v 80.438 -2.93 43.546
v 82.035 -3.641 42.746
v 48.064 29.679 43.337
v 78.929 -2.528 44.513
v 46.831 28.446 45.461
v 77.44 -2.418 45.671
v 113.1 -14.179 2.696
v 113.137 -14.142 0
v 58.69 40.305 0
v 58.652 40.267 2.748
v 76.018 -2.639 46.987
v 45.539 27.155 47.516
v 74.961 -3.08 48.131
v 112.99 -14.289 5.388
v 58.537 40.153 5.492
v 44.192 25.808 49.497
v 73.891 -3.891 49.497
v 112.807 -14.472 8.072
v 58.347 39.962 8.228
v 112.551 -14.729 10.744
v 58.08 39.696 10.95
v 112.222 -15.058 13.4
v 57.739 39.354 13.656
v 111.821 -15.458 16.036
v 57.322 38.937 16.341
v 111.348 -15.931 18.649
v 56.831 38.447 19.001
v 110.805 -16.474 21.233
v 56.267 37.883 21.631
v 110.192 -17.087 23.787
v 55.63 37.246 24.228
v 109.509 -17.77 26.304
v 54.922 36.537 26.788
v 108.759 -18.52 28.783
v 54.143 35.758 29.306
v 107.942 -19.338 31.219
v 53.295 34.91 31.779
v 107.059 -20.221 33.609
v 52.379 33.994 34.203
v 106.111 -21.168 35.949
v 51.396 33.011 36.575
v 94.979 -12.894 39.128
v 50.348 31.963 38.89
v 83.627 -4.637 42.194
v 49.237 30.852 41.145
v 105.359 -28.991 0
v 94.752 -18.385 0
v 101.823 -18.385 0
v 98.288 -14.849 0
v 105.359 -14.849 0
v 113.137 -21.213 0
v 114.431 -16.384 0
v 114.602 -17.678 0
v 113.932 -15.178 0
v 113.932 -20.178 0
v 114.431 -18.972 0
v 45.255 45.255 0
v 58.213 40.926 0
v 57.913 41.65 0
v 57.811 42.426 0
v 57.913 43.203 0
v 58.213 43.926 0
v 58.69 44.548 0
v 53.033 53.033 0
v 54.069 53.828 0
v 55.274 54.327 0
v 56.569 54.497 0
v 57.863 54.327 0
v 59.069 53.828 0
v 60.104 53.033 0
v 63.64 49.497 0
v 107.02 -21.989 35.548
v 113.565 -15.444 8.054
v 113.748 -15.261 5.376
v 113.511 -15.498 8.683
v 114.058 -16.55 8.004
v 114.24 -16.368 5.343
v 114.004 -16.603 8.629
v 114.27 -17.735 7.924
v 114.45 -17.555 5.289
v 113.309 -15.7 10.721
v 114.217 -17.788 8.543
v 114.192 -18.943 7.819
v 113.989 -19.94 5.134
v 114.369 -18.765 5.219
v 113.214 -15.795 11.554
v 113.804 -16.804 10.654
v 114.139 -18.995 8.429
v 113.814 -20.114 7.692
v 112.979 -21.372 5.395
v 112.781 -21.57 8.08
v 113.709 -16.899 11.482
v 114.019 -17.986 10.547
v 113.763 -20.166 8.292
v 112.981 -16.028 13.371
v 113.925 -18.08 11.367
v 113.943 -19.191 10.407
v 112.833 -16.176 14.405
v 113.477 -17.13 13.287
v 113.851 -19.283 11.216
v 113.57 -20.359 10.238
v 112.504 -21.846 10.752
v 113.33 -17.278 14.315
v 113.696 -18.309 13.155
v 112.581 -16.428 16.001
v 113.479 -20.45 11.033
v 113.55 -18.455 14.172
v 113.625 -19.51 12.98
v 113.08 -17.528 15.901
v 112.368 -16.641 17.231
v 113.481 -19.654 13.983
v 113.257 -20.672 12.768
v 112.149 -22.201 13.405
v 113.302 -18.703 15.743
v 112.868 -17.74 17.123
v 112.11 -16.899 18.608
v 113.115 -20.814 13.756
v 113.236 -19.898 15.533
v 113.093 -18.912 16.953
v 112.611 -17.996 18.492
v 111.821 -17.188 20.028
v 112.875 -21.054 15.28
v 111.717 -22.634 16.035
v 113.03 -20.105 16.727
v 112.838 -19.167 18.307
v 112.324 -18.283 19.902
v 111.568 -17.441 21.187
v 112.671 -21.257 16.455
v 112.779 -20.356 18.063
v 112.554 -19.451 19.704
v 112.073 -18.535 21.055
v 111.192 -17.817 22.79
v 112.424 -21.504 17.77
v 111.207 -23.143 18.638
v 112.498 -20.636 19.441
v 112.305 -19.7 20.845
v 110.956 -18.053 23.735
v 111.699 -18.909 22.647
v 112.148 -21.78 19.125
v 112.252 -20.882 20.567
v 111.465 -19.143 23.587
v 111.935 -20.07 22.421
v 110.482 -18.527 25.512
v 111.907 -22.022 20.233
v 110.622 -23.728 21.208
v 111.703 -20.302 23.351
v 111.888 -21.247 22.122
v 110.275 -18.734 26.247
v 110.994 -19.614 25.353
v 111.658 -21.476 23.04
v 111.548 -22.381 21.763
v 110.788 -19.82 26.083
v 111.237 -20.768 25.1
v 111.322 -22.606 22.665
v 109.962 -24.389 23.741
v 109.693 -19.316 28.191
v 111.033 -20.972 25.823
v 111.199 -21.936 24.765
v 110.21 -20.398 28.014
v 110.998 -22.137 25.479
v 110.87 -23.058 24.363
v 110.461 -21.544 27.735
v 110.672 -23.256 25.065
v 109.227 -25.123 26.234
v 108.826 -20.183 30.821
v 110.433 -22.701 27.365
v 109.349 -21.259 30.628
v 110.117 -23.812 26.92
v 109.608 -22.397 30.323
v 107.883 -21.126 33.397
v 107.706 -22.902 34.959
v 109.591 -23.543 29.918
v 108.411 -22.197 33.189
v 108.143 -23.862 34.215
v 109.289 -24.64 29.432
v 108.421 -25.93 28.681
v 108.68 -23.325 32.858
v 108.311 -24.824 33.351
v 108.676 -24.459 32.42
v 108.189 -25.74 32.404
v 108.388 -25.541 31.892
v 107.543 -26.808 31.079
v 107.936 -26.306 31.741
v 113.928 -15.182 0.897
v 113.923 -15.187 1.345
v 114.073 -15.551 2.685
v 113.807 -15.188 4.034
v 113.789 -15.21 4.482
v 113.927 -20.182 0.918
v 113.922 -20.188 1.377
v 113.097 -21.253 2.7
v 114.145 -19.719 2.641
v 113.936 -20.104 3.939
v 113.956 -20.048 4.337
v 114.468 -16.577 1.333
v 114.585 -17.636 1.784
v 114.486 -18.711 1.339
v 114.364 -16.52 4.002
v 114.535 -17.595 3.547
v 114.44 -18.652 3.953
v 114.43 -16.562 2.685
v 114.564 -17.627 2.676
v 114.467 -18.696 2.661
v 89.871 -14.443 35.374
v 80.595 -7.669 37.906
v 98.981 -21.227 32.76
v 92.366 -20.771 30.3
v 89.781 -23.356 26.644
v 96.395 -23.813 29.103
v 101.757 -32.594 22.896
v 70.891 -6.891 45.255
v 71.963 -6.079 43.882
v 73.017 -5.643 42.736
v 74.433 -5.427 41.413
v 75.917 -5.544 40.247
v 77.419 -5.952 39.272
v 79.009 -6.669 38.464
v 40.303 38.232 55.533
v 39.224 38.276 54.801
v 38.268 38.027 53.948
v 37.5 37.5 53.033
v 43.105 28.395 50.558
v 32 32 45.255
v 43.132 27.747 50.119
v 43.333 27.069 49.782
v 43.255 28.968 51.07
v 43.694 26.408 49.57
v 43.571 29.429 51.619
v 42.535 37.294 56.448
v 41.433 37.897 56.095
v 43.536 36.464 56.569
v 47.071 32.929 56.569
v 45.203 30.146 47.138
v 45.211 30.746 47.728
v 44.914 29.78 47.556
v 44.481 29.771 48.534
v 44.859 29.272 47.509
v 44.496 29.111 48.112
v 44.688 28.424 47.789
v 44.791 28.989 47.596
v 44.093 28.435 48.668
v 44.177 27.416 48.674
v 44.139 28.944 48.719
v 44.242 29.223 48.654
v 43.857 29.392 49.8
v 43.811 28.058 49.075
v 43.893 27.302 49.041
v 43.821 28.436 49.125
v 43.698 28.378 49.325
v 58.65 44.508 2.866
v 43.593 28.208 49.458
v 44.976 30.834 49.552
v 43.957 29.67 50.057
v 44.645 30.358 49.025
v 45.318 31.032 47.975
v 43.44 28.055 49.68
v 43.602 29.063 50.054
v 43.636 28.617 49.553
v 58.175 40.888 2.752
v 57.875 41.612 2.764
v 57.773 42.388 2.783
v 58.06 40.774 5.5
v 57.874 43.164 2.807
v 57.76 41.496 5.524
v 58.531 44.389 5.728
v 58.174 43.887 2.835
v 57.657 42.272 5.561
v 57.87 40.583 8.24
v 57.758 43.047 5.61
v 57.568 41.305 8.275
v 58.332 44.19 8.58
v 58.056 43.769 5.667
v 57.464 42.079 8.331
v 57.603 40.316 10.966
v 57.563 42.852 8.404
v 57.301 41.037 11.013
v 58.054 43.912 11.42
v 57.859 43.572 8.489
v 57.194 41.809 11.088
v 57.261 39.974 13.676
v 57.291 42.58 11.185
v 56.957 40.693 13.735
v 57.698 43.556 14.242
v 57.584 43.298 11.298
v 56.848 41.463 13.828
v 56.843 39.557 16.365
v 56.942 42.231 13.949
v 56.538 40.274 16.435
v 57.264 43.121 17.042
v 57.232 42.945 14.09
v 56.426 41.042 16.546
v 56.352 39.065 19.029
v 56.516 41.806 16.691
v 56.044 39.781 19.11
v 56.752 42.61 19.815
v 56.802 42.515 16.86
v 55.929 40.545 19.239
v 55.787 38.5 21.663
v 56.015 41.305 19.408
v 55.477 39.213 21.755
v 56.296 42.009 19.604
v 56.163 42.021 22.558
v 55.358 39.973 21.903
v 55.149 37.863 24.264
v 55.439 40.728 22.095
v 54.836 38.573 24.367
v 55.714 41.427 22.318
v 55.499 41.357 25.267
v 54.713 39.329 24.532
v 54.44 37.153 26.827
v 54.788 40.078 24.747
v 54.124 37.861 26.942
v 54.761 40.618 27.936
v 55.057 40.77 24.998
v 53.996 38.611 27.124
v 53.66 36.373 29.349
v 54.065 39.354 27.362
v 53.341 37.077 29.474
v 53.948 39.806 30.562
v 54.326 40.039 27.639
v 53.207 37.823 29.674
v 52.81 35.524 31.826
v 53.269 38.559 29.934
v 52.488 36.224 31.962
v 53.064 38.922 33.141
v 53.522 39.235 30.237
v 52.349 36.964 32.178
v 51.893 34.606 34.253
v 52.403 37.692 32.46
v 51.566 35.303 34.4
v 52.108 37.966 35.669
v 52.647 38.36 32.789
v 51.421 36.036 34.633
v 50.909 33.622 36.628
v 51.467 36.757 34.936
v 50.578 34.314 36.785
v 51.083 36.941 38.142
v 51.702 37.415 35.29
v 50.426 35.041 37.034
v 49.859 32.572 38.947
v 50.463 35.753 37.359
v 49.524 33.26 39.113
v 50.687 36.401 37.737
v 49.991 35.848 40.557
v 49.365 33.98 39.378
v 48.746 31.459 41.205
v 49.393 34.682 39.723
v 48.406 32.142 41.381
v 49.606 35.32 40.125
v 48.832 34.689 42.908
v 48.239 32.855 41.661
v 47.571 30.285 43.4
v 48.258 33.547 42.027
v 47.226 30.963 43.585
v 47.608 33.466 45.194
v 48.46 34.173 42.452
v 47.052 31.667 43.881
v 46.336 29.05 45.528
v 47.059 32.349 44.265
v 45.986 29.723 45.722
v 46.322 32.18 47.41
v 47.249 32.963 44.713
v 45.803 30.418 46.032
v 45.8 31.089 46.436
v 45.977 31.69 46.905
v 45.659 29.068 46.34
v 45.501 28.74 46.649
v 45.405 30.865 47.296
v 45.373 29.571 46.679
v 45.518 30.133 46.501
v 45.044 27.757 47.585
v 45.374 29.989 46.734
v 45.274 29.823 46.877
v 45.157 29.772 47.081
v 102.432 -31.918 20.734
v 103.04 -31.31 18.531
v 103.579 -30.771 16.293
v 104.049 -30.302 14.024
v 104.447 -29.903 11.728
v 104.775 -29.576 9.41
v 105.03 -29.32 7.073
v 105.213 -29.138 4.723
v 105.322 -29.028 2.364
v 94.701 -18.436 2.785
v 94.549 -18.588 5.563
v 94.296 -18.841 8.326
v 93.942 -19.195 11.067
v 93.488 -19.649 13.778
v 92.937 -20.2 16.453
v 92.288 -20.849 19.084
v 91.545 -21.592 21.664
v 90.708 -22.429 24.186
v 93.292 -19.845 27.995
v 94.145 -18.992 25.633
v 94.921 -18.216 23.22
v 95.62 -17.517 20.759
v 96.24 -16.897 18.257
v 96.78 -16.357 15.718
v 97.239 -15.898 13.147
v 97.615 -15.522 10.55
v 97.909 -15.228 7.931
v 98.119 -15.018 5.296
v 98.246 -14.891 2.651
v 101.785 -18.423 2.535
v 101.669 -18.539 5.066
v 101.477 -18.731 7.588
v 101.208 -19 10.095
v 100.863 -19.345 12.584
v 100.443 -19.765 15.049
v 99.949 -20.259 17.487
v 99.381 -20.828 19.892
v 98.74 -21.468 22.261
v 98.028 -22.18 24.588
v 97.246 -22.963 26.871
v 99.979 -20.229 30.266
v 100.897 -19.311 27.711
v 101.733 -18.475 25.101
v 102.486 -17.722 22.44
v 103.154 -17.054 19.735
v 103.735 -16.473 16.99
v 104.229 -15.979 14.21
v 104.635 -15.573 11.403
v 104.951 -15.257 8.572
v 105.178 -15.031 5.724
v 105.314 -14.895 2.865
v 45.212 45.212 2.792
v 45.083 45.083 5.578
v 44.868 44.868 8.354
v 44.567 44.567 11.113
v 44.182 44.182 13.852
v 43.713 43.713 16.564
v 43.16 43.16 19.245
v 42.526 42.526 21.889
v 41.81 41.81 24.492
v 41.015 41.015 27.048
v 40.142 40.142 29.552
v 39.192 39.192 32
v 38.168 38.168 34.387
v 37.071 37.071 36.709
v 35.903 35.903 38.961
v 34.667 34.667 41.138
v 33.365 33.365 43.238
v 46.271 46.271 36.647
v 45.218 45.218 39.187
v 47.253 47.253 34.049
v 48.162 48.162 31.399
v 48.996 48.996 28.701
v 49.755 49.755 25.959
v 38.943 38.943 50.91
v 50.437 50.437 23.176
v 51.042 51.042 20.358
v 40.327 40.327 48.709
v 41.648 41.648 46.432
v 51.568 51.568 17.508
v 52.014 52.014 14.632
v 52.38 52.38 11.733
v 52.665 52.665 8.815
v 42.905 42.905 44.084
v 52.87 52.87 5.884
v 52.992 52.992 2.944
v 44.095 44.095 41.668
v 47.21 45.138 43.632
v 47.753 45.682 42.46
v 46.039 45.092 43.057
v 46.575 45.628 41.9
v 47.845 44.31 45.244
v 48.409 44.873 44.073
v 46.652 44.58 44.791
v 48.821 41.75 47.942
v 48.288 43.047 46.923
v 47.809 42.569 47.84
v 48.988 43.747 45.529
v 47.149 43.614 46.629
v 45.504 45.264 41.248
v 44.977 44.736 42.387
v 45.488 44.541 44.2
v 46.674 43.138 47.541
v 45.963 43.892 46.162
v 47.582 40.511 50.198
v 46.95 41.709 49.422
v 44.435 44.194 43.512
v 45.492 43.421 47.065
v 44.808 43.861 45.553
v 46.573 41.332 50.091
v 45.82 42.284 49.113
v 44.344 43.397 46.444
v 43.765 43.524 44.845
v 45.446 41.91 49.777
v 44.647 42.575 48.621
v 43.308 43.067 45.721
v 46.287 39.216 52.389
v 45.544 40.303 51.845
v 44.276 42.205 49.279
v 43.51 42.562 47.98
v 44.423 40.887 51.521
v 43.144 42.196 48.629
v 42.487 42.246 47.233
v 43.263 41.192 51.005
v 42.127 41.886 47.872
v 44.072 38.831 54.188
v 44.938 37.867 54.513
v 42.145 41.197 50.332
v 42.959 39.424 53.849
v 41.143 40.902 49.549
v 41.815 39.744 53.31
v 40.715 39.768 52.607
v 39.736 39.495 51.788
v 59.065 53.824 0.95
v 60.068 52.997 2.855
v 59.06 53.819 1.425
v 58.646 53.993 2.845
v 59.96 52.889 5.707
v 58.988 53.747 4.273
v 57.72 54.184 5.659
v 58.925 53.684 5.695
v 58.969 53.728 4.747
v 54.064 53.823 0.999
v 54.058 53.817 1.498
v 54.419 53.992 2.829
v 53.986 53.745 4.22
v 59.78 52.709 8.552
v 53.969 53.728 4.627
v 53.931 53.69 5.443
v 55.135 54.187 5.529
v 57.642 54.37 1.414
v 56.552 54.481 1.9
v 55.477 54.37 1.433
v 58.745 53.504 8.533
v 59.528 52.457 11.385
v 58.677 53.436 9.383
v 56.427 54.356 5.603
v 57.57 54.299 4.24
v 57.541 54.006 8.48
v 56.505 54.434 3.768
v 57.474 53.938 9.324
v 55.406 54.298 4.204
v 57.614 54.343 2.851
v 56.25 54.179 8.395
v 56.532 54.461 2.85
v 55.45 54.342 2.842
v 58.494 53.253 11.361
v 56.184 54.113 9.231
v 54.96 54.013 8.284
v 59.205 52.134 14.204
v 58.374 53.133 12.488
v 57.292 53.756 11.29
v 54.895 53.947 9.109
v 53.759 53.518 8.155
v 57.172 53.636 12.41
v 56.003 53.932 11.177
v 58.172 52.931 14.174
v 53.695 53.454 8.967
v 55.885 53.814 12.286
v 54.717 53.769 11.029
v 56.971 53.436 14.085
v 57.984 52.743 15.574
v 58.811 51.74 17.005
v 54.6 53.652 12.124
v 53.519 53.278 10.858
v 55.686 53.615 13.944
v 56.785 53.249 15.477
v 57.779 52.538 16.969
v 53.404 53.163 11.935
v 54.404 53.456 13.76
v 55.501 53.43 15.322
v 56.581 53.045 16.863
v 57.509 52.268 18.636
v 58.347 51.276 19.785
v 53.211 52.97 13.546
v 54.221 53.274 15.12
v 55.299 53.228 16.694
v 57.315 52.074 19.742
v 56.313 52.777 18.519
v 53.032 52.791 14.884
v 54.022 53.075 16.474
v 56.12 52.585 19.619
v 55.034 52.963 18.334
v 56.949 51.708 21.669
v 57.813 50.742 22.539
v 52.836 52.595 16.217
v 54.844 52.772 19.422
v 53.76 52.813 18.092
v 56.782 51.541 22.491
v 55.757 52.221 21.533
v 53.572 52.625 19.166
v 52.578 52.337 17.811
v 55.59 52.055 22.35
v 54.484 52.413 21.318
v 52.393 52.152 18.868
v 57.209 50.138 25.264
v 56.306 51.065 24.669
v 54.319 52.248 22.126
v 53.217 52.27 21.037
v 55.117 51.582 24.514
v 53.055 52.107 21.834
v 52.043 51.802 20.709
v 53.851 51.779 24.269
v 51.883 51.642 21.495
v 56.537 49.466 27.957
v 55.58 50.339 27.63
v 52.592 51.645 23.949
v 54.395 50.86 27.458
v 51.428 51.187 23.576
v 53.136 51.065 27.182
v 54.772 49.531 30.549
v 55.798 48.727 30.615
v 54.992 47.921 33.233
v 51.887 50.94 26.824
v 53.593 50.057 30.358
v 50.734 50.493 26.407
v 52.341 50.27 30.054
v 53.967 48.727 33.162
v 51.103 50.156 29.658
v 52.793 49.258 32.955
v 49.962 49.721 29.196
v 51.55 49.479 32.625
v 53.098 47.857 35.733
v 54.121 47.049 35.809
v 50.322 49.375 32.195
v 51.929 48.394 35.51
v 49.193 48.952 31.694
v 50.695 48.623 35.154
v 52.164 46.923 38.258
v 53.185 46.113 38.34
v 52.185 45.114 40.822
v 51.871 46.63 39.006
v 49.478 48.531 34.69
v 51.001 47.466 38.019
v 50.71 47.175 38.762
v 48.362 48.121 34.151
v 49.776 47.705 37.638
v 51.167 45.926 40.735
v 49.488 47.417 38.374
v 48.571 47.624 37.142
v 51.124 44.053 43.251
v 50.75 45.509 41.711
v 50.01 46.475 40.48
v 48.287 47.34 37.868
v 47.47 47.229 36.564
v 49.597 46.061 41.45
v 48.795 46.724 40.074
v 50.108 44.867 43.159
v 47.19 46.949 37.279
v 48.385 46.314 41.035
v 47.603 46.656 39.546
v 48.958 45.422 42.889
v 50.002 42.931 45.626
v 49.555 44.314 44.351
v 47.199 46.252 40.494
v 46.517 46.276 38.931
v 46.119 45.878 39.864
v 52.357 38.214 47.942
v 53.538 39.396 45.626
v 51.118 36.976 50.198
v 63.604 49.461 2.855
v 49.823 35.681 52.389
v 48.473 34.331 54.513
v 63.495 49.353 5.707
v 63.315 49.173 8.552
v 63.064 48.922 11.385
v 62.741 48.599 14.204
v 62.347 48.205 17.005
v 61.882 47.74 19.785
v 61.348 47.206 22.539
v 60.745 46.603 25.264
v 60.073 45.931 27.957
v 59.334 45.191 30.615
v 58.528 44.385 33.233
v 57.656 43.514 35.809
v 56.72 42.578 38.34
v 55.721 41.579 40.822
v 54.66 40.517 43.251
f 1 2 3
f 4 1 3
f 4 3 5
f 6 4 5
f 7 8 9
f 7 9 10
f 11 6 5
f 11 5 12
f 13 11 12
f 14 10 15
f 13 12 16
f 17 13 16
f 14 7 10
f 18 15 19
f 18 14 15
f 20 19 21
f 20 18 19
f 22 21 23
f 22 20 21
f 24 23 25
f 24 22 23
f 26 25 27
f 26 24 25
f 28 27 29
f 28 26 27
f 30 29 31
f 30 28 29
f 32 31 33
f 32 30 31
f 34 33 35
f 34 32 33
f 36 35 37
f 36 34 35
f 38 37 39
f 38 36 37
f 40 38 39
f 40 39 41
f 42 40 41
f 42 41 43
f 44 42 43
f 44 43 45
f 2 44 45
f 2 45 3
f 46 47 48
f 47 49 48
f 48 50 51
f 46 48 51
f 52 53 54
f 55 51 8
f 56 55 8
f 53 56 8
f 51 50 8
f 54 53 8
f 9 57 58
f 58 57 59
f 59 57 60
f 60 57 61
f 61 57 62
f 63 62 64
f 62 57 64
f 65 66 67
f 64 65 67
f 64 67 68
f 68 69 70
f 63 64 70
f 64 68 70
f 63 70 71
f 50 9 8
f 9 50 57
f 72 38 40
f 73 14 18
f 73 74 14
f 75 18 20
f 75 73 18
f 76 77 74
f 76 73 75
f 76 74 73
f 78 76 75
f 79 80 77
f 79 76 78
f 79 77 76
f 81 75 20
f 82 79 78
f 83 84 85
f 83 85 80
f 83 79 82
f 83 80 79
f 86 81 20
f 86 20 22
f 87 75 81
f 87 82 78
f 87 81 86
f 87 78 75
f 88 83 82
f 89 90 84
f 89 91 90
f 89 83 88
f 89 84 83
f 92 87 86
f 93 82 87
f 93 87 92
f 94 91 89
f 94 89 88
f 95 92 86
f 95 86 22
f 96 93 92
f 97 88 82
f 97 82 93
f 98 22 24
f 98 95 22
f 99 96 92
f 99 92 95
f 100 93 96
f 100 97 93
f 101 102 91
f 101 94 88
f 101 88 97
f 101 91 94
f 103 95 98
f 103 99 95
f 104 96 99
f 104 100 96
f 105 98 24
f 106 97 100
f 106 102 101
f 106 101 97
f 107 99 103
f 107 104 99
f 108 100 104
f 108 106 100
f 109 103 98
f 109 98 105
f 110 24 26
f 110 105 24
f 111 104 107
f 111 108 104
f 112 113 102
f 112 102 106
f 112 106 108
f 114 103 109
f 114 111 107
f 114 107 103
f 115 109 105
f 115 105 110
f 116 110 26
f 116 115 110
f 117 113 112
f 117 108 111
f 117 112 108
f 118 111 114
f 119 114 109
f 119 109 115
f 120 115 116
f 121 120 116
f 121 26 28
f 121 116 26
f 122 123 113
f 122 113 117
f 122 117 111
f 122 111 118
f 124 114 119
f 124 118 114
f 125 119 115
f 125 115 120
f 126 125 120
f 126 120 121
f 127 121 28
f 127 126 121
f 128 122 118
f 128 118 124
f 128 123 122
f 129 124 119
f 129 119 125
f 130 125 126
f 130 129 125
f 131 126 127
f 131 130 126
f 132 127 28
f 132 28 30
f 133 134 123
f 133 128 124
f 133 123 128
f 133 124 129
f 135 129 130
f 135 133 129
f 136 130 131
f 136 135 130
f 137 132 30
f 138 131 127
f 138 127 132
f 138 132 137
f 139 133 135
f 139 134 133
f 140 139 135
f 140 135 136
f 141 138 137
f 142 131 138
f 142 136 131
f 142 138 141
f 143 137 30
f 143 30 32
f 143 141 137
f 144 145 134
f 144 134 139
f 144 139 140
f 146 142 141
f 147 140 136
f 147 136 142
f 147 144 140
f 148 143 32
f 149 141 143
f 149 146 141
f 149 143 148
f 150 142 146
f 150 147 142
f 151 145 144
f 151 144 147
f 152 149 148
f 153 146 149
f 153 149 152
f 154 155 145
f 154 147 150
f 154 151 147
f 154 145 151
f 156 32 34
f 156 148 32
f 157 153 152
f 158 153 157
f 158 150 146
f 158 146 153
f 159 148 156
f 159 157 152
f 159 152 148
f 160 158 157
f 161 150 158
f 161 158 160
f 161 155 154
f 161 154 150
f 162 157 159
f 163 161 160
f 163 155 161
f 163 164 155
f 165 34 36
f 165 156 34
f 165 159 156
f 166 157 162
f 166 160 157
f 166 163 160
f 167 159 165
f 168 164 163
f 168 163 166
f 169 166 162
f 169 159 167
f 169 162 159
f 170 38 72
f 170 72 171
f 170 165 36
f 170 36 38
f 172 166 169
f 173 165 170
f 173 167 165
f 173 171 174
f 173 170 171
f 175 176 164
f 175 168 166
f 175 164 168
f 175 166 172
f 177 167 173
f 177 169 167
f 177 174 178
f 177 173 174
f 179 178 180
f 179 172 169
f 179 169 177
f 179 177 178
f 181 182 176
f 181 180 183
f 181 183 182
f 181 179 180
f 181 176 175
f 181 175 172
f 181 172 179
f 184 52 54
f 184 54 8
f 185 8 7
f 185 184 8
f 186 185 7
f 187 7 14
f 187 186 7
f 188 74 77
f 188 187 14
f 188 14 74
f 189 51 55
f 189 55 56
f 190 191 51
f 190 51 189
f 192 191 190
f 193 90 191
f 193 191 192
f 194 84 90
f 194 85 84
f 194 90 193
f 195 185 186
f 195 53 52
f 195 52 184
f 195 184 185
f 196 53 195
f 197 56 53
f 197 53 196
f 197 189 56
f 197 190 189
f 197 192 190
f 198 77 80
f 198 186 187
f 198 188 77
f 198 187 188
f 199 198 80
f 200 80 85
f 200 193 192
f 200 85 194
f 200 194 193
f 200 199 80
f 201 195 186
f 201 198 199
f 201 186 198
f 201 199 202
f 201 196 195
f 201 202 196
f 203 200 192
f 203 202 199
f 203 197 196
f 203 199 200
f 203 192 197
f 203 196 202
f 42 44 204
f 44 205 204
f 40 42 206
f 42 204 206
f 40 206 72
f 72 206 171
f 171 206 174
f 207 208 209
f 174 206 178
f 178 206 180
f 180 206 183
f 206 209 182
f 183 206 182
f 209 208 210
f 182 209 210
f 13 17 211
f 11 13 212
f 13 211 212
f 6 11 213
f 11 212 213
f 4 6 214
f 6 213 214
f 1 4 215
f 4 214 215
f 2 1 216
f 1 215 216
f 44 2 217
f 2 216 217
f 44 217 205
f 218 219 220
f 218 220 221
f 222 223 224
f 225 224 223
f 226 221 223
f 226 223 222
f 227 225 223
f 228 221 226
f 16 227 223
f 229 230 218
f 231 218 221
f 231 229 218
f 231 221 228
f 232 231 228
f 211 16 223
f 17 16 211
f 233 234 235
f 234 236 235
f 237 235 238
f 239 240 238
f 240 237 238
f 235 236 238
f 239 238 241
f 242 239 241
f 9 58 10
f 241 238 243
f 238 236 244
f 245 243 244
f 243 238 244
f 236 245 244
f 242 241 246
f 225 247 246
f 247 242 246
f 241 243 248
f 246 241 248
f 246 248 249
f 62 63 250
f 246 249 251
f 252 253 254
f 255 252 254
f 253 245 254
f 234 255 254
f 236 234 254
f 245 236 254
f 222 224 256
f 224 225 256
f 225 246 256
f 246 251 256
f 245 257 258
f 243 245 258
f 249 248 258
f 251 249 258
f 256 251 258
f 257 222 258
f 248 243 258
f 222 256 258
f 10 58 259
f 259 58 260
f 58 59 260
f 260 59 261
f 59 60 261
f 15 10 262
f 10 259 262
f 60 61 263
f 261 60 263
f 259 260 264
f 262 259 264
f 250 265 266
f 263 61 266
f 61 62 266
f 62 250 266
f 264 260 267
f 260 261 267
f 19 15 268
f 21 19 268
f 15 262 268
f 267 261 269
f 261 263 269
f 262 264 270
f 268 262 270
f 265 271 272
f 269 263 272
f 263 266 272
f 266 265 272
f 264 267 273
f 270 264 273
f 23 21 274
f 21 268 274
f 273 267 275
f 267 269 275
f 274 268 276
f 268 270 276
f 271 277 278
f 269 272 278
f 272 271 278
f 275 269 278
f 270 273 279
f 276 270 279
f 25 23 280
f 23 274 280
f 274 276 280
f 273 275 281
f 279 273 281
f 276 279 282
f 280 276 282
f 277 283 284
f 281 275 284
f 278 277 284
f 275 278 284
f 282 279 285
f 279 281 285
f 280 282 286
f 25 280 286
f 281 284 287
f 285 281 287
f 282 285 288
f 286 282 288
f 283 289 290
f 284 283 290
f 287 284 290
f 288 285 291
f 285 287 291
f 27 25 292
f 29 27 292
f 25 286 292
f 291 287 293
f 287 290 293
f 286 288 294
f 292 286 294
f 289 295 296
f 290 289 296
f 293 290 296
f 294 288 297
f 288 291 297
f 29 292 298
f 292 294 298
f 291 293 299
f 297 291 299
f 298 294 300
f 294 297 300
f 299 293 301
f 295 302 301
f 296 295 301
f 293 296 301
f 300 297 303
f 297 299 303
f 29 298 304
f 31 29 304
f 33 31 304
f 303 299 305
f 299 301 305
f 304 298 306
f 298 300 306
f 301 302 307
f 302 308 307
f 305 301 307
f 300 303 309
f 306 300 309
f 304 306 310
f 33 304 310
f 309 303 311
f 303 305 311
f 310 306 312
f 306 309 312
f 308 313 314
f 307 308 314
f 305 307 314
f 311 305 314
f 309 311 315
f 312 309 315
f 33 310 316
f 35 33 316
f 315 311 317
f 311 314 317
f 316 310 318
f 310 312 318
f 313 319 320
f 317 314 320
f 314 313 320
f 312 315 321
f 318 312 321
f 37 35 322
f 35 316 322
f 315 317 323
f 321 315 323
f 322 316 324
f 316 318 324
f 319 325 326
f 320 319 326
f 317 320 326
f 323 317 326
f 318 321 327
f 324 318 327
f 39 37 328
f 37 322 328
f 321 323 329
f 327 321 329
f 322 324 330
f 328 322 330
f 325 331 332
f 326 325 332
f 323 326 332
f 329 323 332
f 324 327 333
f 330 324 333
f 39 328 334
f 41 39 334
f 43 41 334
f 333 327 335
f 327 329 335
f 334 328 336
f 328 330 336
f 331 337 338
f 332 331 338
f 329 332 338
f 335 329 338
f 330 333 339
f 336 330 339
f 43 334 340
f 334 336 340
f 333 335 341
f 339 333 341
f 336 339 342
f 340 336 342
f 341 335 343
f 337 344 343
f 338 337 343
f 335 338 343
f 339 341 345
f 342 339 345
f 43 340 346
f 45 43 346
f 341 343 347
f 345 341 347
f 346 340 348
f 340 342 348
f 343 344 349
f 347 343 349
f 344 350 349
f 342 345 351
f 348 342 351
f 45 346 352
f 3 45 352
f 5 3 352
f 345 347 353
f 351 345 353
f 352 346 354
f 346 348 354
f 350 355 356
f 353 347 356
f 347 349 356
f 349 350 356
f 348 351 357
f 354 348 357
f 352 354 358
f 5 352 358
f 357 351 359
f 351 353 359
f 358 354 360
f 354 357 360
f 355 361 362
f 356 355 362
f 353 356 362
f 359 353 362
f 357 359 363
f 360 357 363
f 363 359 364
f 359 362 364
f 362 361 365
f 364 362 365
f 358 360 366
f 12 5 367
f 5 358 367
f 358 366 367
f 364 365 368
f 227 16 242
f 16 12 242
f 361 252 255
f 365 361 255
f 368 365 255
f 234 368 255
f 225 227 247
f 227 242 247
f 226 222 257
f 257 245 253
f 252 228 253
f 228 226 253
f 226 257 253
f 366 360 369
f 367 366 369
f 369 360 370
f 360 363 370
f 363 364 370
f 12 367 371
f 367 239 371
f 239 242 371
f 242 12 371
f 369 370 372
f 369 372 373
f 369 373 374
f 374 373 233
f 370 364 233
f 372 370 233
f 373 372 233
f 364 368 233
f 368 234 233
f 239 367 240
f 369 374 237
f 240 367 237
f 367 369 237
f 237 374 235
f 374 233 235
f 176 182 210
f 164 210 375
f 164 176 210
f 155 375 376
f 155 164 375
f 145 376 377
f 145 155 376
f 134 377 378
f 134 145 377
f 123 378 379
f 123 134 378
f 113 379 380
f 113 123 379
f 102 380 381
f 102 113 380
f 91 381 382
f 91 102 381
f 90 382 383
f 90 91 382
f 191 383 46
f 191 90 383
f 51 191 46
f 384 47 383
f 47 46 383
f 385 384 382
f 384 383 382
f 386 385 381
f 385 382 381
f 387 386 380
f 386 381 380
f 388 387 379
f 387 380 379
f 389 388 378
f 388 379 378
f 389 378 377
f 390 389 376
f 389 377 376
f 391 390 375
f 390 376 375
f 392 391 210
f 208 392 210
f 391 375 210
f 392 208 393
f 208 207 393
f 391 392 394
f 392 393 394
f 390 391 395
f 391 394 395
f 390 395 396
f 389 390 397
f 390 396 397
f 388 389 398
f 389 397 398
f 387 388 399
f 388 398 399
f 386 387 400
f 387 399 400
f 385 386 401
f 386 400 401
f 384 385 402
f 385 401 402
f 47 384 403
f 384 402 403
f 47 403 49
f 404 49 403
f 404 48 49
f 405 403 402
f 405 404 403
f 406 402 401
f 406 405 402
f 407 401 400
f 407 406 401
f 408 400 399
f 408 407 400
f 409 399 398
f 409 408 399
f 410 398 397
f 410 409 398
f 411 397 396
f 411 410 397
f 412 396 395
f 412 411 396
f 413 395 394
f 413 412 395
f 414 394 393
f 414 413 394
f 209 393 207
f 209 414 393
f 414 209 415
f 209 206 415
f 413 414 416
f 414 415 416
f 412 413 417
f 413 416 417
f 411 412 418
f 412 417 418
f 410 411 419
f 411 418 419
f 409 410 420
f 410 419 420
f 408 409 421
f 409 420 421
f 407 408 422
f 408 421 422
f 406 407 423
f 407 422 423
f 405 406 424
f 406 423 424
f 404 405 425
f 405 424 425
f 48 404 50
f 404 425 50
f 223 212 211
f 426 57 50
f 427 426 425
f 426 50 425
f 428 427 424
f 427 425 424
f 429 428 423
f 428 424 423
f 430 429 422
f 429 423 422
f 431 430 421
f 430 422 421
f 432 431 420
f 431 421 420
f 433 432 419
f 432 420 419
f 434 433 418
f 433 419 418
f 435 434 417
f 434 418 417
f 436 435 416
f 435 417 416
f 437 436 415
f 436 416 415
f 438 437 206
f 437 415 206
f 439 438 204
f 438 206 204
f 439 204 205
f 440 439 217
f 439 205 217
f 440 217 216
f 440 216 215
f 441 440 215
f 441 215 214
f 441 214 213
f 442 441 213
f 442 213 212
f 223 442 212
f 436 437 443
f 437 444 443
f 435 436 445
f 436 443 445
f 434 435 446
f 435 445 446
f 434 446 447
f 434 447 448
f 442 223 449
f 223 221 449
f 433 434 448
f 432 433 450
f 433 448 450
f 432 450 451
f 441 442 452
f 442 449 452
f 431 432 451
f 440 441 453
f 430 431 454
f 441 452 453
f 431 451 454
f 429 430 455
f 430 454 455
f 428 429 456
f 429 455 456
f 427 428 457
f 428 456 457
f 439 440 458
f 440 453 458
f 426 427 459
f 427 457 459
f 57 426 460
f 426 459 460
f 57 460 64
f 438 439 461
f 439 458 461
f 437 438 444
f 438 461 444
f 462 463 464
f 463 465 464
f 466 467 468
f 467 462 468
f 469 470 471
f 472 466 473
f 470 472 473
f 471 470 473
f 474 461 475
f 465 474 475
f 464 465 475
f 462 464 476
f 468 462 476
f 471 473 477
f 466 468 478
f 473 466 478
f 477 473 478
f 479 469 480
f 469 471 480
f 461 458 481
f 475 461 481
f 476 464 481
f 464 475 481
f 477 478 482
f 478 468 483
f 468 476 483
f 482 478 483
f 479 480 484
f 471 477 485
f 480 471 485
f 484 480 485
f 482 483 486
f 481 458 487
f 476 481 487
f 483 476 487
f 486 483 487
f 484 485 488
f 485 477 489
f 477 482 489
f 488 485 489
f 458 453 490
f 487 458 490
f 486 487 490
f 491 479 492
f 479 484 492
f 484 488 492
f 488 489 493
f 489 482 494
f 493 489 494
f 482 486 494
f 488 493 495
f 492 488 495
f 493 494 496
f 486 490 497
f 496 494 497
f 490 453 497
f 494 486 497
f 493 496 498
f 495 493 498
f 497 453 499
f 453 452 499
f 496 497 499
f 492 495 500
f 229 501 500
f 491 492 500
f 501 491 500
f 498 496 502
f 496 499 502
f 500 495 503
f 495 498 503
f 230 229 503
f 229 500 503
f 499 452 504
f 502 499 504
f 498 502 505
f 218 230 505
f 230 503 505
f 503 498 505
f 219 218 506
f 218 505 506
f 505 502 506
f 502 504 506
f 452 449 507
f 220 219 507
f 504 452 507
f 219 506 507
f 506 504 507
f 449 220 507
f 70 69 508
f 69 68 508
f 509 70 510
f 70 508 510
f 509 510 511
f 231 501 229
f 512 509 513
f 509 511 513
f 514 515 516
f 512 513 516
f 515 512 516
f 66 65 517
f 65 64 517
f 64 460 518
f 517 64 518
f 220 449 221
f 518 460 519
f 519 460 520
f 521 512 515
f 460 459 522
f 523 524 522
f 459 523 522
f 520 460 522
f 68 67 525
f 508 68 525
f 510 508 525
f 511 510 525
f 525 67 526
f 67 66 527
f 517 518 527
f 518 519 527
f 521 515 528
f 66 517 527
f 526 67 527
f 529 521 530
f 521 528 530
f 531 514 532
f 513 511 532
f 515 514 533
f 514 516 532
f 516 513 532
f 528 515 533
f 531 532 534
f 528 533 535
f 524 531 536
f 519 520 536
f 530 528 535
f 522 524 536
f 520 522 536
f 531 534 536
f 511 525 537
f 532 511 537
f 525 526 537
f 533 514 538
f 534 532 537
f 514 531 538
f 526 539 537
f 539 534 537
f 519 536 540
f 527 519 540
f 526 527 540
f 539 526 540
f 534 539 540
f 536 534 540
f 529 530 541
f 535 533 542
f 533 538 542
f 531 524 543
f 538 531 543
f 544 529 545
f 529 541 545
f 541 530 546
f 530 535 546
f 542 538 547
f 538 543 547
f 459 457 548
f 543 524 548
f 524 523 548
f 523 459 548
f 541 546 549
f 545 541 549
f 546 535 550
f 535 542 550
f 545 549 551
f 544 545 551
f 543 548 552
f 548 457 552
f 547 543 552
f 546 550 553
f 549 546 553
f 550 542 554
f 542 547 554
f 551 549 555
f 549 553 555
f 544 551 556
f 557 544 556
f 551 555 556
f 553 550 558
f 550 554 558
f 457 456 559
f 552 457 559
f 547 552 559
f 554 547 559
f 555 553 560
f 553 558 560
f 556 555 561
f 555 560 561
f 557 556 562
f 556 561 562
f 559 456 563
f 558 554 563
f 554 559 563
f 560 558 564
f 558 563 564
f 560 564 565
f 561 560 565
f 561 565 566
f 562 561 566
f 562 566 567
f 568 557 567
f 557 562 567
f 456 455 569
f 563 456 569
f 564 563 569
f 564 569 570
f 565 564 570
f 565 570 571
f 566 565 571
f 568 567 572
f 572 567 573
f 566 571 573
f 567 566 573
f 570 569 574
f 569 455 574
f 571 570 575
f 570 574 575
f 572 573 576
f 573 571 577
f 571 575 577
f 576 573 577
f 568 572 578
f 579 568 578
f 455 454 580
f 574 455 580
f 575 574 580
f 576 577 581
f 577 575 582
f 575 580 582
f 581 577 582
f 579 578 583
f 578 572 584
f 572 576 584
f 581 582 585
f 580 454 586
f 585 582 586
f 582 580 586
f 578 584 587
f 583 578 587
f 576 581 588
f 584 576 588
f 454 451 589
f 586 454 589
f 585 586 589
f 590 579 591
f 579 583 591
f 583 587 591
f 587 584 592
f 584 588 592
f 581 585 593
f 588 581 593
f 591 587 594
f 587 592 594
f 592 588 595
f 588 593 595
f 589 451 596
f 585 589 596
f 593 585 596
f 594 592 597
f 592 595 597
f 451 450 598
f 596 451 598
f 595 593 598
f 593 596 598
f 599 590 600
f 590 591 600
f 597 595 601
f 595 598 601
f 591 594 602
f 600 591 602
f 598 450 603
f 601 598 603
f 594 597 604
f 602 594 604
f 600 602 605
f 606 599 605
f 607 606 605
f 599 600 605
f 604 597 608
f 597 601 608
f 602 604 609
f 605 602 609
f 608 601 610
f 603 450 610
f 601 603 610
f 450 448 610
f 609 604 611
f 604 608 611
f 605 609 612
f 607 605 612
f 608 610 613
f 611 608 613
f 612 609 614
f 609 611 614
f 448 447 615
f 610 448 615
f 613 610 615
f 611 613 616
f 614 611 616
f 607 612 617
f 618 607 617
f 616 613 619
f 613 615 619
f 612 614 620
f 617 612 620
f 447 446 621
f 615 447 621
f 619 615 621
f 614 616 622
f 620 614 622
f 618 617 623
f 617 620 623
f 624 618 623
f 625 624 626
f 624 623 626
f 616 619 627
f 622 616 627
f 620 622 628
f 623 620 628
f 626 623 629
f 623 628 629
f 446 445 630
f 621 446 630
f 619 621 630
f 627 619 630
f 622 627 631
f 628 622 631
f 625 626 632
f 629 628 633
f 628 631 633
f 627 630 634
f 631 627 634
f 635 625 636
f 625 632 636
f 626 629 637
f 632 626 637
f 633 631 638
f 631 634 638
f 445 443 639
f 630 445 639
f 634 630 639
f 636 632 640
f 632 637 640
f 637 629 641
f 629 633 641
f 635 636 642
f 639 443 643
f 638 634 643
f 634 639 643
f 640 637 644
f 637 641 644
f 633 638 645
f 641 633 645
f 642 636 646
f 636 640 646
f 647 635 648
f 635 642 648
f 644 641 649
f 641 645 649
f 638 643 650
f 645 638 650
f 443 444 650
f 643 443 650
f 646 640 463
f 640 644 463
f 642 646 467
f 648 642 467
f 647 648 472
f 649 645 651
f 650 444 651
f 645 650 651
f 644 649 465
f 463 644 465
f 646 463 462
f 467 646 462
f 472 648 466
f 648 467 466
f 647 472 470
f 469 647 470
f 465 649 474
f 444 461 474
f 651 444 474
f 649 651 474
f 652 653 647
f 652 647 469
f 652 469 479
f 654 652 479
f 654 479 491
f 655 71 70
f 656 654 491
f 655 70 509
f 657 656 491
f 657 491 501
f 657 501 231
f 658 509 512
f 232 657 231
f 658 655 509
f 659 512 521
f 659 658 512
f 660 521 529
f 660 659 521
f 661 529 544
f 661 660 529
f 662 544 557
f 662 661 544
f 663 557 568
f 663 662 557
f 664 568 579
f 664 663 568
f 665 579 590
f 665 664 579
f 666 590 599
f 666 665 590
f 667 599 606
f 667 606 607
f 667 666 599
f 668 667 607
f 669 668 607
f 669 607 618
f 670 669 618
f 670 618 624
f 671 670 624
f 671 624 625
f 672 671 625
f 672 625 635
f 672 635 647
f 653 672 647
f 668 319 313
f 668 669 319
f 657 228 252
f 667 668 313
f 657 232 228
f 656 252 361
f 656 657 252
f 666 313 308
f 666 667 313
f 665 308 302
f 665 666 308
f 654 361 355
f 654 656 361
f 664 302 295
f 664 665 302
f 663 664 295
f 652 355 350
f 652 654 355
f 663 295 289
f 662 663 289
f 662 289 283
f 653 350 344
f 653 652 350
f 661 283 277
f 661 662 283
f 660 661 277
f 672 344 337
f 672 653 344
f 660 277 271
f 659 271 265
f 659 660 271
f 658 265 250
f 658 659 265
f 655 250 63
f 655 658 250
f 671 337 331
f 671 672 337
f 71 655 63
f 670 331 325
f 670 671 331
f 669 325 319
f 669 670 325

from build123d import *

# Parameters (mm, degrees)
BOX007_W               = 100
BOX007_H               = 100
BOX007_DEPTH           = 100
BOX006_W               = 100
BOX006_H               = 100
BOX006_DEPTH           = 100
BOX006_PLACEMENT_ANGLE = 90
BOX005_W               = 200
BOX005_H               = 200
BOX005_DEPTH           = 100
BOX004_W               = 20
BOX004_H               = 20
BOX004_DEPTH           = 80
BOX003_W               = 20
BOX003_H               = 20
BOX003_DEPTH           = 80
BOX002_W               = 10
BOX002_H               = 25
BOX002_DEPTH           = 35
BOX002_PITCH_ANGLE     = -15
BOX001_W               = 10
BOX001_H               = 25
BOX001_DEPTH           = 35
BOX001_PITCH_ANGLE     = 15
BOX_W                  = 20
BOX_H                  = 25
BOX_DEPTH              = 35
CYLINDER005_R          = 10
CYLINDER005_DEPTH      = 180
CYLINDER005_ROLL_ANGLE = 90
CYLINDER004_R          = 54
CYLINDER004_DEPTH      = 100
CYLINDER003_R          = 59
CYLINDER003_DEPTH      = 10
CYLINDER002_R          = 64
CYLINDER002_DEPTH      = 85
CYLINDER001_R          = 70
CYLINDER001_DEPTH      = 90
CYLINDER_R             = 80
CYLINDER_DEPTH         = 10
FILLET_R               = 3
FILLET001_R            = 5
FILLET002_R            = 5
CUT007_ROLL_ANGLE      = 90
CUT007_PITCH_ANGLE     = 45
CUT007_PLACEMENT_ANGLE = 45
CUT008_ROLL_ANGLE      = -90
CUT008_PITCH_ANGLE     = -45
CUT008_PLACEMENT_ANGLE = 45
CUT010_ROLL_ANGLE      = 90
CUT010_PITCH_ANGLE     = 45
CUT010_PLACEMENT_ANGLE = 45


with BuildPart() as cube004:
    # Box007 → Box007 (new body)
    with BuildSketch(Plane(origin=(0, 0, 0), x_dir=(-1, 0, 0), z_dir=(0, 0, 1))):
        with Locations((50, 50)):
            Rectangle(BOX007_W, BOX007_H)
    extrude(amount=BOX007_DEPTH)


with BuildPart() as cube003:
    # Box006 → Box006 (new body)
    with BuildSketch(Plane.XY):
        with Locations((50, 50)):
            Rectangle(BOX006_W, BOX006_H)
    extrude(amount=BOX006_DEPTH)


with BuildPart() as cube003_1:
    # Box006 placement: moved
    add(cube003.part.rotate(Axis((0, 0, 0), (0, 0, 1)), BOX006_PLACEMENT_ANGLE))


with BuildPart() as cube002:
    # Box005 → Box005 (new body)
    with BuildSketch(Plane(origin=(-70, -120, -100), x_dir=(1, 0, 0), z_dir=(0, 0, 1))):
        with Locations((100, 100)):
            Rectangle(BOX005_W, BOX005_H)
    extrude(amount=BOX005_DEPTH)


with BuildPart() as tab_cut_l:
    # Box004 → Box004 (new body)
    with BuildSketch(Plane(origin=(-83, -10, 20), x_dir=(1, 0, 0), z_dir=(0, 0, 1))):
        with Locations((10, 10)):
            Rectangle(BOX004_W, BOX004_H)
    extrude(amount=BOX004_DEPTH)


with BuildPart() as tab_cut_r:
    # Box003 → Box003 (new body)
    with BuildSketch(Plane(origin=(63, -10, 20), x_dir=(1, 0, 0), z_dir=(0, 0, 1))):
        with Locations((10, 10)):
            Rectangle(BOX003_W, BOX003_H)
    extrude(amount=BOX003_DEPTH)


with BuildPart() as cube001:
    # Box002 → Box002 (new body)
    with BuildSketch(Plane.XY):
        with Locations((5, 12.5)):
            Rectangle(BOX002_W, BOX002_H)
    extrude(amount=BOX002_DEPTH)


with BuildPart() as cube001_1:
    # Box002 pitch: moved
    add(cube001.part.rotate(Axis((0, 0, 0), (0, 1, 0)), BOX002_PITCH_ANGLE))


with BuildPart() as cube001_2:
    # Box002 placement: moved
    add(cube001_1.part.moved(Location((-9.95, 48, 64))))


with BuildPart() as cube:
    # Box001 → Box001 (new body)
    with BuildSketch(Plane.XY):
        with Locations((5, 12.5)):
            Rectangle(BOX001_W, BOX001_H)
    extrude(amount=BOX001_DEPTH)


with BuildPart() as cube_1:
    # Box001 pitch: moved
    add(cube.part.rotate(Axis((0, 0, 0), (0, 1, 0)), BOX001_PITCH_ANGLE))


with BuildPart() as cube_2:
    # Box001 placement: moved
    add(cube_1.part.moved(Location((0, 48, 65))))


with BuildPart() as bearing_slot:
    # Box → Box (new body)
    with BuildSketch(Plane(origin=(-10, 48, 65), x_dir=(1, 0, 0), z_dir=(0, 0, 1))):
        with Locations((10, 12.5)):
            Rectangle(BOX_W, BOX_H)
    extrude(amount=BOX_DEPTH)


with BuildPart() as bearing_holes:
    # Cylinder005 → Cylinder005 (new body)
    with BuildSketch(Plane.XY):
        Circle(CYLINDER005_R)
    extrude(amount=CYLINDER005_DEPTH)


with BuildPart() as bearing_holes_1:
    # Cylinder005 roll: moved
    add(bearing_holes.part.rotate(Axis((0, 0, 0), (1, 0, 0)), CYLINDER005_ROLL_ANGLE))


with BuildPart() as bearing_holes_2:
    # Cylinder005 placement: moved
    add(bearing_holes_1.part.moved(Location((0, 90, 65))))


with BuildPart() as through_hole:
    # Cylinder004 → Cylinder004 (new body)
    with BuildSketch(Plane.XY):
        Circle(CYLINDER004_R)
    extrude(amount=CYLINDER004_DEPTH)


with BuildPart() as inner_lip:
    # Cylinder003 → Cylinder003 (new body)
    with BuildSketch(Plane.XY.offset(80)):
        Circle(CYLINDER003_R)
    extrude(amount=CYLINDER003_DEPTH)


with BuildPart() as inner_hole:
    # Cylinder002 → Cylinder002 (new body)
    with BuildSketch(Plane.XY):
        Circle(CYLINDER002_R)
    extrude(amount=CYLINDER002_DEPTH)


with BuildPart() as body_cylinder:
    # Cylinder001 → Cylinder001 (new body)
    with BuildSketch(Plane.XY.offset(5)):
        Circle(CYLINDER001_R)
    extrude(amount=CYLINDER001_DEPTH)


with BuildPart() as cut010:
    # Cylinder → Cylinder (new body)
    with BuildSketch(Plane.XY):
        Circle(CYLINDER_R)
    extrude(amount=CYLINDER_DEPTH)

    # Fusion: union Body_Cylinder
    add(body_cylinder.part)

    # Cut: cut Inner_Hole
    add(inner_hole.part, mode=Mode.SUBTRACT)

    # Fusion001: union Inner_Lip
    add(inner_lip.part)

    # Cut001: cut Through_Hole
    add(through_hole.part, mode=Mode.SUBTRACT)

    # Fillet
    fillet_edges = [cut010.edges().sort_by_distance(p)[0] for p in [
        (-70, 0, 10),
    ]]
    fillet(fillet_edges, radius=FILLET_R)

    # Fillet001
    fillet001_edges = [cut010.edges().sort_by_distance(p)[0] for p in [
        (-80, 0, 0),
    ]]
    fillet(fillet001_edges, radius=FILLET001_R)

    # Fillet002
    fillet002_edges = [cut010.edges().sort_by_distance(p)[0] for p in [
        (-70, 0, 95),
    ]]
    fillet(fillet002_edges, radius=FILLET002_R)

    # Cut002: cut Bearing_Holes
    add(bearing_holes_2.part, mode=Mode.SUBTRACT)

    # Cut003: cut Bearing_Slot
    add(bearing_slot.part, mode=Mode.SUBTRACT)

    # Cut004: cut Cube
    add(cube_2.part, mode=Mode.SUBTRACT)

    # Cut005: cut Cube001
    add(cube001_2.part, mode=Mode.SUBTRACT)

    # Cut006: cut Tab_Cut_R
    add(tab_cut_r.part, mode=Mode.SUBTRACT)

    # Cut007: cut Tab_Cut_L
    add(tab_cut_l.part, mode=Mode.SUBTRACT)


with BuildPart() as cut010_1:
    # Cut007 roll: moved
    add(cut010.part.rotate(Axis((0, 0, 0), (1, 0, 0)), CUT007_ROLL_ANGLE))


with BuildPart() as cut010_2:
    # Cut007 pitch: moved
    add(cut010_1.part.rotate(Axis((0, 0, 0), (0, 1, 0)), CUT007_PITCH_ANGLE))


with BuildPart() as cut010_3:
    # Cut007 placement: moved
    add(cut010_2.part.rotate(Axis((0, 0, 0), (0, 0, 1)), CUT007_PLACEMENT_ANGLE))

    # Cut008: cut Cube002
    add(cube002.part, mode=Mode.SUBTRACT)


with BuildPart() as cut010_4:
    # Cut008 roll: moved
    add(cut010_3.part.rotate(Axis((0, 0, 0), (1, 0, 0)), CUT008_ROLL_ANGLE))


with BuildPart() as cut010_5:
    # Cut008 pitch: moved
    add(cut010_4.part.rotate(Axis((0, 0, 0), (0, 1, 0)), CUT008_PITCH_ANGLE))


with BuildPart() as cut010_6:
    # Cut008 placement: moved
    add(cut010_5.part.rotate(Axis((0, 0, 0), (0, 0, 1)), CUT008_PLACEMENT_ANGLE))

    # Cut009: cut Cube003
    add(cube003_1.part, mode=Mode.SUBTRACT)

    # Cut010: cut Cube004
    add(cube004.part, mode=Mode.SUBTRACT)


with BuildPart() as cut010_7:
    # Cut010 roll: moved
    add(cut010_6.part.rotate(Axis((0, 0, 0), (1, 0, 0)), CUT010_ROLL_ANGLE))


with BuildPart() as cut010_8:
    # Cut010 pitch: moved
    add(cut010_7.part.rotate(Axis((0, 0, 0), (0, 1, 0)), CUT010_PITCH_ANGLE))


with BuildPart() as cut010_9:
    # Cut010 placement: moved
    add(cut010_8.part.rotate(Axis((0, 0, 0), (0, 0, 1)), CUT010_PLACEMENT_ANGLE))


solid = cut010_9.part
